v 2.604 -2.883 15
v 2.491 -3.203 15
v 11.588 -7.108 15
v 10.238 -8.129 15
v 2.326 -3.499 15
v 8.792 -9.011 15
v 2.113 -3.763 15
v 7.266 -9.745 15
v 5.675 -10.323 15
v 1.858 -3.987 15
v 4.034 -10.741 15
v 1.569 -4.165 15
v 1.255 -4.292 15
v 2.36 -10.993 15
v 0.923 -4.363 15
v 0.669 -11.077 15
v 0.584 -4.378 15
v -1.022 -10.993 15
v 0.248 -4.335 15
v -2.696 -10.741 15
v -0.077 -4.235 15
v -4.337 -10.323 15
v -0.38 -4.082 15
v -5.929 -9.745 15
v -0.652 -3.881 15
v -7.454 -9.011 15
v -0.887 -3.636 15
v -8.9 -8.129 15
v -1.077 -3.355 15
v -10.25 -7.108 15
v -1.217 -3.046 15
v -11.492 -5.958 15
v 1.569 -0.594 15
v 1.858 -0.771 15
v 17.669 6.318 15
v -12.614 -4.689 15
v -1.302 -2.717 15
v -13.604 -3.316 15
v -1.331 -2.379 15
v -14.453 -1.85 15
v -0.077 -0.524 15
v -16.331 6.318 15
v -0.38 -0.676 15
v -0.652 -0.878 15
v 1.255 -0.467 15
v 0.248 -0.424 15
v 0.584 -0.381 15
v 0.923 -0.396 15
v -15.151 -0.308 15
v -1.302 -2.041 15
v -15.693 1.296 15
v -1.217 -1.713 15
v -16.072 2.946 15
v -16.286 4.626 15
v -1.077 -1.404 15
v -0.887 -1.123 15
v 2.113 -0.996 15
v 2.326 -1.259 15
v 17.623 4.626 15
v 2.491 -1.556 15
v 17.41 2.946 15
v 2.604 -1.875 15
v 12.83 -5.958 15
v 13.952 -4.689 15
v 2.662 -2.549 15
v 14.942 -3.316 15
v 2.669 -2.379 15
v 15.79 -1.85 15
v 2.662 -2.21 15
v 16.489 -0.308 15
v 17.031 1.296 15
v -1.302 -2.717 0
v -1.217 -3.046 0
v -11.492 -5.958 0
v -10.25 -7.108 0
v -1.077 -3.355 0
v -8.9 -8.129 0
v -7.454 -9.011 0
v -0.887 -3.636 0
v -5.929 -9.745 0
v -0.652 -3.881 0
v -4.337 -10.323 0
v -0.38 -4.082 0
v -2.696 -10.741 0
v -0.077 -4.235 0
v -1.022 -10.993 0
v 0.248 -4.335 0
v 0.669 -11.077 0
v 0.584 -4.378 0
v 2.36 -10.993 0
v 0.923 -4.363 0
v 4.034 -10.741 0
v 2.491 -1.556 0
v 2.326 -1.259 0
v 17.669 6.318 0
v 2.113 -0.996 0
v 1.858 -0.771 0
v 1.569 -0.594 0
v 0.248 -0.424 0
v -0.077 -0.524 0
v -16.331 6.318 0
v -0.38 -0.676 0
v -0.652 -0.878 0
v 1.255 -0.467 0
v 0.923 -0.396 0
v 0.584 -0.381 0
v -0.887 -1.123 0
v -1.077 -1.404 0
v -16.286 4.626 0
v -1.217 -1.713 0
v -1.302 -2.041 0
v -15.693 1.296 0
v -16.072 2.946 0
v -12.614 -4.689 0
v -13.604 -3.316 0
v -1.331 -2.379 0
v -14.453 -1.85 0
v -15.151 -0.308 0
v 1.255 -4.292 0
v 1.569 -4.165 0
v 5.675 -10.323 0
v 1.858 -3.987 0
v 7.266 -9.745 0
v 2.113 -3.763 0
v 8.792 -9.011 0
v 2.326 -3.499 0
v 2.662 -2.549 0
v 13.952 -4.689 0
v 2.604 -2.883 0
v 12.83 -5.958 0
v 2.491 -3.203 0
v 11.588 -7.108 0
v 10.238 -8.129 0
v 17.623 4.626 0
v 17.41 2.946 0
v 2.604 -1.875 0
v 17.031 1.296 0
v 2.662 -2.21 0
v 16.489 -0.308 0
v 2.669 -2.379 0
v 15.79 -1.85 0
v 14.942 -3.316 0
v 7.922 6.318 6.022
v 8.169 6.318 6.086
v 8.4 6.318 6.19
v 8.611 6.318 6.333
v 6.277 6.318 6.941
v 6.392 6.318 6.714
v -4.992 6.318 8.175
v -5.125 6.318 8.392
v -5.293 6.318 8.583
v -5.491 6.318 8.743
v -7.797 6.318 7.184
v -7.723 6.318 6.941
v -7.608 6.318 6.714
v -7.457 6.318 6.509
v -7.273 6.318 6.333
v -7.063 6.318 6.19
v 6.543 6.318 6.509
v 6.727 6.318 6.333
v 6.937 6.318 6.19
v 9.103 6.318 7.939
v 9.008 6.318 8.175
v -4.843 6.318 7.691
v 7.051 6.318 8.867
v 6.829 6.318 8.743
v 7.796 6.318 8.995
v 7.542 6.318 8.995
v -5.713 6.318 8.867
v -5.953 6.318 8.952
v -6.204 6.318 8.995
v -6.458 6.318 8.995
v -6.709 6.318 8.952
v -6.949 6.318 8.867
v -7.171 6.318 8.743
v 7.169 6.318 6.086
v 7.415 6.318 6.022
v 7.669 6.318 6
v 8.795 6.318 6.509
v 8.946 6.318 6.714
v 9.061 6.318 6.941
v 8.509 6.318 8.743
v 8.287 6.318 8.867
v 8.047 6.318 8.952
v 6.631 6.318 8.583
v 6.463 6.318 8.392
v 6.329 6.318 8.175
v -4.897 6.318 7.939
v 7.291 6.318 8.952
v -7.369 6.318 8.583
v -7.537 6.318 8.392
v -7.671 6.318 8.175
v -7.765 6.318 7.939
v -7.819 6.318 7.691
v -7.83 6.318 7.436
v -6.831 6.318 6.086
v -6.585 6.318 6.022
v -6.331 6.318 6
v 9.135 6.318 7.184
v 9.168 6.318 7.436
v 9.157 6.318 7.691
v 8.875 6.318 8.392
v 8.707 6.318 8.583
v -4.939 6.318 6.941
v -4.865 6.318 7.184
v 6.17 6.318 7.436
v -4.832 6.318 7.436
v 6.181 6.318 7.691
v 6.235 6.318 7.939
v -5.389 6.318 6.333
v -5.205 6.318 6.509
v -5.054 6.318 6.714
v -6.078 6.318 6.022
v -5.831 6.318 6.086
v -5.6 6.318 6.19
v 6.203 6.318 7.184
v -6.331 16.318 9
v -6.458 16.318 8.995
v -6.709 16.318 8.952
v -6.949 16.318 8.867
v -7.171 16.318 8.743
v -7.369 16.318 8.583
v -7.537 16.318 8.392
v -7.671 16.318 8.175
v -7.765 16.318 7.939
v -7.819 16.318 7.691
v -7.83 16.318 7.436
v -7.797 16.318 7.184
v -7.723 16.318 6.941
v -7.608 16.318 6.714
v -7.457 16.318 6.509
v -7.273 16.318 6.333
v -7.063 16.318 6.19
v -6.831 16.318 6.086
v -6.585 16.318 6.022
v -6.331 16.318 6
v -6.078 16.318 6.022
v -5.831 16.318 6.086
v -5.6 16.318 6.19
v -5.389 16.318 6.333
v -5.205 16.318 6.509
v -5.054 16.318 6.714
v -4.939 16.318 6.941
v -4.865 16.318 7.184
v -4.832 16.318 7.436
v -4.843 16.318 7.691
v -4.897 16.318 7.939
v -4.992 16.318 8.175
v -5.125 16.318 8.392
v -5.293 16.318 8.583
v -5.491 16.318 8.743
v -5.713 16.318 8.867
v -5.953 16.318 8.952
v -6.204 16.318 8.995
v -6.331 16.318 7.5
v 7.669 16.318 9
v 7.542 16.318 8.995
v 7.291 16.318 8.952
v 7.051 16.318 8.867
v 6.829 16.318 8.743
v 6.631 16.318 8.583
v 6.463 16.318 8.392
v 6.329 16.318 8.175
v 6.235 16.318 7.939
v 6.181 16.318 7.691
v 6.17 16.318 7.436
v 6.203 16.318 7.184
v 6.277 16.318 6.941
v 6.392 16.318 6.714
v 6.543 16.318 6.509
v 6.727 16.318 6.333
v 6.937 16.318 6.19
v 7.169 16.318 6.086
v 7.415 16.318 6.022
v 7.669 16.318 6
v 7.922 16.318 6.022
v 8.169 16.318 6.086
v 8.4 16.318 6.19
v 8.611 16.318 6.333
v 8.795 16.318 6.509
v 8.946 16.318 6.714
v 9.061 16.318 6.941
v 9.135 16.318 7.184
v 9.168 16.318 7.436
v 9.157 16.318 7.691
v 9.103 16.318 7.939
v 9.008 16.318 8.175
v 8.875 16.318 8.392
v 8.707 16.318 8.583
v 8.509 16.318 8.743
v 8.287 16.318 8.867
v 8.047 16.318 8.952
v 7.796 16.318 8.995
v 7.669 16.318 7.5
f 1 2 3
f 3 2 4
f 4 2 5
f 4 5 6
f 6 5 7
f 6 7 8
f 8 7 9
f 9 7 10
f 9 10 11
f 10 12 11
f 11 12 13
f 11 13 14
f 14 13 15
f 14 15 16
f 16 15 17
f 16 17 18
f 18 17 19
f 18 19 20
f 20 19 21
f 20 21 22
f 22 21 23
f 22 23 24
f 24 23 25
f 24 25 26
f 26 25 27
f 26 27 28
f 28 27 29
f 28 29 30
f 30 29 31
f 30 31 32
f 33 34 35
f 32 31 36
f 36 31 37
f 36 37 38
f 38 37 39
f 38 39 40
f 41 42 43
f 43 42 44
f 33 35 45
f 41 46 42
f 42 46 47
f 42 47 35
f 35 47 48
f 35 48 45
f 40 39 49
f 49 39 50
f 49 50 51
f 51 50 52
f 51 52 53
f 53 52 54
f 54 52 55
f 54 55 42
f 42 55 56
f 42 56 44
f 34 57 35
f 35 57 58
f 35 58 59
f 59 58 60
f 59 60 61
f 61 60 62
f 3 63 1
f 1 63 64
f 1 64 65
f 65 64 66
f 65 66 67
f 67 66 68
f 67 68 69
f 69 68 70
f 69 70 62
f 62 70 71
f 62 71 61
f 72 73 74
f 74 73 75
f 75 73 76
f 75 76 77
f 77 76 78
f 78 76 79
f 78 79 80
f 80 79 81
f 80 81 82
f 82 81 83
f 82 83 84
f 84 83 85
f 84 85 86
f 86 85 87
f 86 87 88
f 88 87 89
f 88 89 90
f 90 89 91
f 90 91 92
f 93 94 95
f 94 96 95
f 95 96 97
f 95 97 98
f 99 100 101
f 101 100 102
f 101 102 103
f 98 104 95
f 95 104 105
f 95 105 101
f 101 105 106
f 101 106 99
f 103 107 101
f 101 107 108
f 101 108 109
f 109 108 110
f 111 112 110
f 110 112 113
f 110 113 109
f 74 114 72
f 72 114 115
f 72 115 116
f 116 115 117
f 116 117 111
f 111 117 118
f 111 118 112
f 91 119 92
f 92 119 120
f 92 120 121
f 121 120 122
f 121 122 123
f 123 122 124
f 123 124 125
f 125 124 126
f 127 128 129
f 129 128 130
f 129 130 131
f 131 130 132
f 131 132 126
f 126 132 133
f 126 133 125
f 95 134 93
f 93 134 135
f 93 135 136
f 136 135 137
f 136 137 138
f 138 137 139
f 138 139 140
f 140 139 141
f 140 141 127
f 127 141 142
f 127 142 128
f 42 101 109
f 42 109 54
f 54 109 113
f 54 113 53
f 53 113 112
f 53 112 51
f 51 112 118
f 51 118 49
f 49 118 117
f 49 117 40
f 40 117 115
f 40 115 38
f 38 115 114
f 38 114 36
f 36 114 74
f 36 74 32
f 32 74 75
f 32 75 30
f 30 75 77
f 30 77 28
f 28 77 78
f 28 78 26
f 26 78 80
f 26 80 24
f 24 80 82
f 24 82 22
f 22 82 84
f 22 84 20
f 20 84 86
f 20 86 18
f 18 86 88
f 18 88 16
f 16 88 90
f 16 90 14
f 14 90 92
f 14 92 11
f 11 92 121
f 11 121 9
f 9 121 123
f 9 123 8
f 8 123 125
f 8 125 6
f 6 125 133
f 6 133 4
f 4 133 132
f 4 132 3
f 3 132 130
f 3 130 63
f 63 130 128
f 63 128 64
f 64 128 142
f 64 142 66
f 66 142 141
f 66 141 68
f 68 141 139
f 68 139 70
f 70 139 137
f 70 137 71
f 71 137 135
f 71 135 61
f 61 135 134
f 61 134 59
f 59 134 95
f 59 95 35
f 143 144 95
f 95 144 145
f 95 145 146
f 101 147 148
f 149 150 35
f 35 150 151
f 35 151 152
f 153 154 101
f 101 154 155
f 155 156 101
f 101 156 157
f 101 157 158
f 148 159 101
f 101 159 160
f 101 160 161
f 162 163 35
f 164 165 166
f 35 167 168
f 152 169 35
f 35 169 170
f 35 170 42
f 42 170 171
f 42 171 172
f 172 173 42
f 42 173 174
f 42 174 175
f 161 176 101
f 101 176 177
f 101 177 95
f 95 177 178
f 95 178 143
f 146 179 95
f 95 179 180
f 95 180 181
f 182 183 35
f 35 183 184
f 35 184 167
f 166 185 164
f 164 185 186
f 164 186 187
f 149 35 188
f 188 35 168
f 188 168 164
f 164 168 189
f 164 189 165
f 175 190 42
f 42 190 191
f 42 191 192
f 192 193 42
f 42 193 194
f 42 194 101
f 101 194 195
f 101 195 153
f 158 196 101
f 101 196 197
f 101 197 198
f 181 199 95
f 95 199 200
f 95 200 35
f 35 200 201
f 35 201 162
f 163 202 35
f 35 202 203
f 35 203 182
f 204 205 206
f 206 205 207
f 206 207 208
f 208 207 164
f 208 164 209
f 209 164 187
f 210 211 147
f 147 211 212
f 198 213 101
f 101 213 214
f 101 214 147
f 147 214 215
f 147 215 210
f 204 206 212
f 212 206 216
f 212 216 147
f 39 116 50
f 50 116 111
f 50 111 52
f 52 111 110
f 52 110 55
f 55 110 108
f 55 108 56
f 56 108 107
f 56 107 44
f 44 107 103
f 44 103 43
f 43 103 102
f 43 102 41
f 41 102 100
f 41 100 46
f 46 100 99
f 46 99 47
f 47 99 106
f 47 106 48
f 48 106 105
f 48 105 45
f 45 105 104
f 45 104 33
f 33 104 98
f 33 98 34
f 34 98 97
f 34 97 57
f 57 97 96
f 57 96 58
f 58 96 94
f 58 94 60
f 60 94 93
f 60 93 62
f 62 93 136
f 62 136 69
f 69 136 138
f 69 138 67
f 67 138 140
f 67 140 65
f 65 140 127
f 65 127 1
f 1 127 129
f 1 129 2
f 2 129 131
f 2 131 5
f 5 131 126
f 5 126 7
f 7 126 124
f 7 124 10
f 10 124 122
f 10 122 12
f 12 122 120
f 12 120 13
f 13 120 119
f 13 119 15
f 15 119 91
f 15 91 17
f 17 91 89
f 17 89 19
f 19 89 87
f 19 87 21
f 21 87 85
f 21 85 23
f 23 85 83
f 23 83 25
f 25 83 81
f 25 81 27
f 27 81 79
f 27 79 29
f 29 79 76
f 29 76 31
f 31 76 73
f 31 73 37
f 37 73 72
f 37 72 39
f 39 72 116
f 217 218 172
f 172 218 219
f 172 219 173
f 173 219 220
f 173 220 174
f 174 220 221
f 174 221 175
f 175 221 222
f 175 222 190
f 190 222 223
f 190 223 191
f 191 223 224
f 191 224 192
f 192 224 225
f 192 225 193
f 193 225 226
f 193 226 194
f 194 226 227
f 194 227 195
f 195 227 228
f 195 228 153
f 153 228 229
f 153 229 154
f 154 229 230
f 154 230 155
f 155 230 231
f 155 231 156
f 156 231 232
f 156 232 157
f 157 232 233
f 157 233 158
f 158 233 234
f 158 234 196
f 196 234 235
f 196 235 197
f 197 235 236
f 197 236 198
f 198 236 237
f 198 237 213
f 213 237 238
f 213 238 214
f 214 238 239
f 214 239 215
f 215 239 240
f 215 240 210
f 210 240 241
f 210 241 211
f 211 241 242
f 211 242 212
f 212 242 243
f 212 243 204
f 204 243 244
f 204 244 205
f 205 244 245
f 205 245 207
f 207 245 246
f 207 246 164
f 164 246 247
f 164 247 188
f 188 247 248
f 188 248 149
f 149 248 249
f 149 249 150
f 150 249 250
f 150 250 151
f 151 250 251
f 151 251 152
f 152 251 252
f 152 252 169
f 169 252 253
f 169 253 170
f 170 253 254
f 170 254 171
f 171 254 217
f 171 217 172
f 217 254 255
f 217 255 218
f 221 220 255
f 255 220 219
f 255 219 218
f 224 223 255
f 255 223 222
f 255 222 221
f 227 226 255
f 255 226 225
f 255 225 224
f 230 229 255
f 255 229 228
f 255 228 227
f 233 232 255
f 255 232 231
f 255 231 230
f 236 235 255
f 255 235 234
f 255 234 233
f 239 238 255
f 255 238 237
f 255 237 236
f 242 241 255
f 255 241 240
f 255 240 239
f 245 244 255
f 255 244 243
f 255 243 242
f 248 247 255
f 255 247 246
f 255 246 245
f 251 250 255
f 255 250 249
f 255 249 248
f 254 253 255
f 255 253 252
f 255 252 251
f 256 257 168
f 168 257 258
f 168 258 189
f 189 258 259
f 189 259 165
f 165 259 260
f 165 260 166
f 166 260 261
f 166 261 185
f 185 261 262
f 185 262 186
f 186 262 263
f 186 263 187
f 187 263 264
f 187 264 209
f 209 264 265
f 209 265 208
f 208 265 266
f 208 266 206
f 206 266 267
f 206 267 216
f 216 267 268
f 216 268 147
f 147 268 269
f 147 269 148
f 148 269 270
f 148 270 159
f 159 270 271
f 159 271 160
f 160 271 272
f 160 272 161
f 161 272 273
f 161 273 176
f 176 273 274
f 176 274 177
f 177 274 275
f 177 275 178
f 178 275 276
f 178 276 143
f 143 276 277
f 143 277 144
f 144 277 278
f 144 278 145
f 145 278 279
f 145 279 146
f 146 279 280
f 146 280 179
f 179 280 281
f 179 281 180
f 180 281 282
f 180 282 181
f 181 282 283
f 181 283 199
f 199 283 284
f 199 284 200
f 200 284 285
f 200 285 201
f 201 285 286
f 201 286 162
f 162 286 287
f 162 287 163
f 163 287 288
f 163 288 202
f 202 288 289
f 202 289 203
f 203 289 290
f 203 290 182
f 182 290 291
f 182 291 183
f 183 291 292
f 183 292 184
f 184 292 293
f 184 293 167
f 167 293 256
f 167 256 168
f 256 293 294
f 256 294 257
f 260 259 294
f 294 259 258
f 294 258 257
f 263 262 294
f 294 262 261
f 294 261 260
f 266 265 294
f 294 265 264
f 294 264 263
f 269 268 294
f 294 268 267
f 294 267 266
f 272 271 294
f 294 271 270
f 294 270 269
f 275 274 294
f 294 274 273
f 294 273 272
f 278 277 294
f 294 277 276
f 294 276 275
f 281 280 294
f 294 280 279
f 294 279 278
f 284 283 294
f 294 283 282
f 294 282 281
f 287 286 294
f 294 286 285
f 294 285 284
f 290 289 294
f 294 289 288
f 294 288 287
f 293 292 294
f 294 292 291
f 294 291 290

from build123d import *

# Parameters (mm, degrees)
SKETCH1_R           = 2
BOSS_EXTRUDE1_DEPTH = 15
SKETCH2_R           = 1.5
BOSS_EXTRUDE2_DEPTH = 10


with BuildPart() as part:
    # Sketch1 → Boss-Extrude1 (new body)
    with BuildSketch(Plane.XY):
        with BuildLine():
            Line((-16.33111253, 6.318244625), (17.66888747, 6.318244625))
            ThreePointArc((17.66888747, 6.318244625), (0.66888747, -11.07706784), (-16.33111253, 6.318244625))
        make_face()
        with Locations((0.66888747, -2.379411608)):
            Circle(SKETCH1_R, mode=Mode.SUBTRACT)
    extrude(amount=BOSS_EXTRUDE1_DEPTH)

    # Sketch2 → Boss-Extrude2 (add)
    with BuildSketch(Plane(origin=(0, 6.318244625, 0), x_dir=(1, 0, 0), z_dir=(0, 1, 0))):
        with Locations(Location((-6.33111253, -7.5, 0), (0, 0, 90))):
            Circle(SKETCH2_R)
        with Locations(Location((7.66888747, -7.5, 0), (0, 0, 90))):
            Circle(SKETCH2_R)
    extrude(amount=BOSS_EXTRUDE2_DEPTH)


solid = part.part
